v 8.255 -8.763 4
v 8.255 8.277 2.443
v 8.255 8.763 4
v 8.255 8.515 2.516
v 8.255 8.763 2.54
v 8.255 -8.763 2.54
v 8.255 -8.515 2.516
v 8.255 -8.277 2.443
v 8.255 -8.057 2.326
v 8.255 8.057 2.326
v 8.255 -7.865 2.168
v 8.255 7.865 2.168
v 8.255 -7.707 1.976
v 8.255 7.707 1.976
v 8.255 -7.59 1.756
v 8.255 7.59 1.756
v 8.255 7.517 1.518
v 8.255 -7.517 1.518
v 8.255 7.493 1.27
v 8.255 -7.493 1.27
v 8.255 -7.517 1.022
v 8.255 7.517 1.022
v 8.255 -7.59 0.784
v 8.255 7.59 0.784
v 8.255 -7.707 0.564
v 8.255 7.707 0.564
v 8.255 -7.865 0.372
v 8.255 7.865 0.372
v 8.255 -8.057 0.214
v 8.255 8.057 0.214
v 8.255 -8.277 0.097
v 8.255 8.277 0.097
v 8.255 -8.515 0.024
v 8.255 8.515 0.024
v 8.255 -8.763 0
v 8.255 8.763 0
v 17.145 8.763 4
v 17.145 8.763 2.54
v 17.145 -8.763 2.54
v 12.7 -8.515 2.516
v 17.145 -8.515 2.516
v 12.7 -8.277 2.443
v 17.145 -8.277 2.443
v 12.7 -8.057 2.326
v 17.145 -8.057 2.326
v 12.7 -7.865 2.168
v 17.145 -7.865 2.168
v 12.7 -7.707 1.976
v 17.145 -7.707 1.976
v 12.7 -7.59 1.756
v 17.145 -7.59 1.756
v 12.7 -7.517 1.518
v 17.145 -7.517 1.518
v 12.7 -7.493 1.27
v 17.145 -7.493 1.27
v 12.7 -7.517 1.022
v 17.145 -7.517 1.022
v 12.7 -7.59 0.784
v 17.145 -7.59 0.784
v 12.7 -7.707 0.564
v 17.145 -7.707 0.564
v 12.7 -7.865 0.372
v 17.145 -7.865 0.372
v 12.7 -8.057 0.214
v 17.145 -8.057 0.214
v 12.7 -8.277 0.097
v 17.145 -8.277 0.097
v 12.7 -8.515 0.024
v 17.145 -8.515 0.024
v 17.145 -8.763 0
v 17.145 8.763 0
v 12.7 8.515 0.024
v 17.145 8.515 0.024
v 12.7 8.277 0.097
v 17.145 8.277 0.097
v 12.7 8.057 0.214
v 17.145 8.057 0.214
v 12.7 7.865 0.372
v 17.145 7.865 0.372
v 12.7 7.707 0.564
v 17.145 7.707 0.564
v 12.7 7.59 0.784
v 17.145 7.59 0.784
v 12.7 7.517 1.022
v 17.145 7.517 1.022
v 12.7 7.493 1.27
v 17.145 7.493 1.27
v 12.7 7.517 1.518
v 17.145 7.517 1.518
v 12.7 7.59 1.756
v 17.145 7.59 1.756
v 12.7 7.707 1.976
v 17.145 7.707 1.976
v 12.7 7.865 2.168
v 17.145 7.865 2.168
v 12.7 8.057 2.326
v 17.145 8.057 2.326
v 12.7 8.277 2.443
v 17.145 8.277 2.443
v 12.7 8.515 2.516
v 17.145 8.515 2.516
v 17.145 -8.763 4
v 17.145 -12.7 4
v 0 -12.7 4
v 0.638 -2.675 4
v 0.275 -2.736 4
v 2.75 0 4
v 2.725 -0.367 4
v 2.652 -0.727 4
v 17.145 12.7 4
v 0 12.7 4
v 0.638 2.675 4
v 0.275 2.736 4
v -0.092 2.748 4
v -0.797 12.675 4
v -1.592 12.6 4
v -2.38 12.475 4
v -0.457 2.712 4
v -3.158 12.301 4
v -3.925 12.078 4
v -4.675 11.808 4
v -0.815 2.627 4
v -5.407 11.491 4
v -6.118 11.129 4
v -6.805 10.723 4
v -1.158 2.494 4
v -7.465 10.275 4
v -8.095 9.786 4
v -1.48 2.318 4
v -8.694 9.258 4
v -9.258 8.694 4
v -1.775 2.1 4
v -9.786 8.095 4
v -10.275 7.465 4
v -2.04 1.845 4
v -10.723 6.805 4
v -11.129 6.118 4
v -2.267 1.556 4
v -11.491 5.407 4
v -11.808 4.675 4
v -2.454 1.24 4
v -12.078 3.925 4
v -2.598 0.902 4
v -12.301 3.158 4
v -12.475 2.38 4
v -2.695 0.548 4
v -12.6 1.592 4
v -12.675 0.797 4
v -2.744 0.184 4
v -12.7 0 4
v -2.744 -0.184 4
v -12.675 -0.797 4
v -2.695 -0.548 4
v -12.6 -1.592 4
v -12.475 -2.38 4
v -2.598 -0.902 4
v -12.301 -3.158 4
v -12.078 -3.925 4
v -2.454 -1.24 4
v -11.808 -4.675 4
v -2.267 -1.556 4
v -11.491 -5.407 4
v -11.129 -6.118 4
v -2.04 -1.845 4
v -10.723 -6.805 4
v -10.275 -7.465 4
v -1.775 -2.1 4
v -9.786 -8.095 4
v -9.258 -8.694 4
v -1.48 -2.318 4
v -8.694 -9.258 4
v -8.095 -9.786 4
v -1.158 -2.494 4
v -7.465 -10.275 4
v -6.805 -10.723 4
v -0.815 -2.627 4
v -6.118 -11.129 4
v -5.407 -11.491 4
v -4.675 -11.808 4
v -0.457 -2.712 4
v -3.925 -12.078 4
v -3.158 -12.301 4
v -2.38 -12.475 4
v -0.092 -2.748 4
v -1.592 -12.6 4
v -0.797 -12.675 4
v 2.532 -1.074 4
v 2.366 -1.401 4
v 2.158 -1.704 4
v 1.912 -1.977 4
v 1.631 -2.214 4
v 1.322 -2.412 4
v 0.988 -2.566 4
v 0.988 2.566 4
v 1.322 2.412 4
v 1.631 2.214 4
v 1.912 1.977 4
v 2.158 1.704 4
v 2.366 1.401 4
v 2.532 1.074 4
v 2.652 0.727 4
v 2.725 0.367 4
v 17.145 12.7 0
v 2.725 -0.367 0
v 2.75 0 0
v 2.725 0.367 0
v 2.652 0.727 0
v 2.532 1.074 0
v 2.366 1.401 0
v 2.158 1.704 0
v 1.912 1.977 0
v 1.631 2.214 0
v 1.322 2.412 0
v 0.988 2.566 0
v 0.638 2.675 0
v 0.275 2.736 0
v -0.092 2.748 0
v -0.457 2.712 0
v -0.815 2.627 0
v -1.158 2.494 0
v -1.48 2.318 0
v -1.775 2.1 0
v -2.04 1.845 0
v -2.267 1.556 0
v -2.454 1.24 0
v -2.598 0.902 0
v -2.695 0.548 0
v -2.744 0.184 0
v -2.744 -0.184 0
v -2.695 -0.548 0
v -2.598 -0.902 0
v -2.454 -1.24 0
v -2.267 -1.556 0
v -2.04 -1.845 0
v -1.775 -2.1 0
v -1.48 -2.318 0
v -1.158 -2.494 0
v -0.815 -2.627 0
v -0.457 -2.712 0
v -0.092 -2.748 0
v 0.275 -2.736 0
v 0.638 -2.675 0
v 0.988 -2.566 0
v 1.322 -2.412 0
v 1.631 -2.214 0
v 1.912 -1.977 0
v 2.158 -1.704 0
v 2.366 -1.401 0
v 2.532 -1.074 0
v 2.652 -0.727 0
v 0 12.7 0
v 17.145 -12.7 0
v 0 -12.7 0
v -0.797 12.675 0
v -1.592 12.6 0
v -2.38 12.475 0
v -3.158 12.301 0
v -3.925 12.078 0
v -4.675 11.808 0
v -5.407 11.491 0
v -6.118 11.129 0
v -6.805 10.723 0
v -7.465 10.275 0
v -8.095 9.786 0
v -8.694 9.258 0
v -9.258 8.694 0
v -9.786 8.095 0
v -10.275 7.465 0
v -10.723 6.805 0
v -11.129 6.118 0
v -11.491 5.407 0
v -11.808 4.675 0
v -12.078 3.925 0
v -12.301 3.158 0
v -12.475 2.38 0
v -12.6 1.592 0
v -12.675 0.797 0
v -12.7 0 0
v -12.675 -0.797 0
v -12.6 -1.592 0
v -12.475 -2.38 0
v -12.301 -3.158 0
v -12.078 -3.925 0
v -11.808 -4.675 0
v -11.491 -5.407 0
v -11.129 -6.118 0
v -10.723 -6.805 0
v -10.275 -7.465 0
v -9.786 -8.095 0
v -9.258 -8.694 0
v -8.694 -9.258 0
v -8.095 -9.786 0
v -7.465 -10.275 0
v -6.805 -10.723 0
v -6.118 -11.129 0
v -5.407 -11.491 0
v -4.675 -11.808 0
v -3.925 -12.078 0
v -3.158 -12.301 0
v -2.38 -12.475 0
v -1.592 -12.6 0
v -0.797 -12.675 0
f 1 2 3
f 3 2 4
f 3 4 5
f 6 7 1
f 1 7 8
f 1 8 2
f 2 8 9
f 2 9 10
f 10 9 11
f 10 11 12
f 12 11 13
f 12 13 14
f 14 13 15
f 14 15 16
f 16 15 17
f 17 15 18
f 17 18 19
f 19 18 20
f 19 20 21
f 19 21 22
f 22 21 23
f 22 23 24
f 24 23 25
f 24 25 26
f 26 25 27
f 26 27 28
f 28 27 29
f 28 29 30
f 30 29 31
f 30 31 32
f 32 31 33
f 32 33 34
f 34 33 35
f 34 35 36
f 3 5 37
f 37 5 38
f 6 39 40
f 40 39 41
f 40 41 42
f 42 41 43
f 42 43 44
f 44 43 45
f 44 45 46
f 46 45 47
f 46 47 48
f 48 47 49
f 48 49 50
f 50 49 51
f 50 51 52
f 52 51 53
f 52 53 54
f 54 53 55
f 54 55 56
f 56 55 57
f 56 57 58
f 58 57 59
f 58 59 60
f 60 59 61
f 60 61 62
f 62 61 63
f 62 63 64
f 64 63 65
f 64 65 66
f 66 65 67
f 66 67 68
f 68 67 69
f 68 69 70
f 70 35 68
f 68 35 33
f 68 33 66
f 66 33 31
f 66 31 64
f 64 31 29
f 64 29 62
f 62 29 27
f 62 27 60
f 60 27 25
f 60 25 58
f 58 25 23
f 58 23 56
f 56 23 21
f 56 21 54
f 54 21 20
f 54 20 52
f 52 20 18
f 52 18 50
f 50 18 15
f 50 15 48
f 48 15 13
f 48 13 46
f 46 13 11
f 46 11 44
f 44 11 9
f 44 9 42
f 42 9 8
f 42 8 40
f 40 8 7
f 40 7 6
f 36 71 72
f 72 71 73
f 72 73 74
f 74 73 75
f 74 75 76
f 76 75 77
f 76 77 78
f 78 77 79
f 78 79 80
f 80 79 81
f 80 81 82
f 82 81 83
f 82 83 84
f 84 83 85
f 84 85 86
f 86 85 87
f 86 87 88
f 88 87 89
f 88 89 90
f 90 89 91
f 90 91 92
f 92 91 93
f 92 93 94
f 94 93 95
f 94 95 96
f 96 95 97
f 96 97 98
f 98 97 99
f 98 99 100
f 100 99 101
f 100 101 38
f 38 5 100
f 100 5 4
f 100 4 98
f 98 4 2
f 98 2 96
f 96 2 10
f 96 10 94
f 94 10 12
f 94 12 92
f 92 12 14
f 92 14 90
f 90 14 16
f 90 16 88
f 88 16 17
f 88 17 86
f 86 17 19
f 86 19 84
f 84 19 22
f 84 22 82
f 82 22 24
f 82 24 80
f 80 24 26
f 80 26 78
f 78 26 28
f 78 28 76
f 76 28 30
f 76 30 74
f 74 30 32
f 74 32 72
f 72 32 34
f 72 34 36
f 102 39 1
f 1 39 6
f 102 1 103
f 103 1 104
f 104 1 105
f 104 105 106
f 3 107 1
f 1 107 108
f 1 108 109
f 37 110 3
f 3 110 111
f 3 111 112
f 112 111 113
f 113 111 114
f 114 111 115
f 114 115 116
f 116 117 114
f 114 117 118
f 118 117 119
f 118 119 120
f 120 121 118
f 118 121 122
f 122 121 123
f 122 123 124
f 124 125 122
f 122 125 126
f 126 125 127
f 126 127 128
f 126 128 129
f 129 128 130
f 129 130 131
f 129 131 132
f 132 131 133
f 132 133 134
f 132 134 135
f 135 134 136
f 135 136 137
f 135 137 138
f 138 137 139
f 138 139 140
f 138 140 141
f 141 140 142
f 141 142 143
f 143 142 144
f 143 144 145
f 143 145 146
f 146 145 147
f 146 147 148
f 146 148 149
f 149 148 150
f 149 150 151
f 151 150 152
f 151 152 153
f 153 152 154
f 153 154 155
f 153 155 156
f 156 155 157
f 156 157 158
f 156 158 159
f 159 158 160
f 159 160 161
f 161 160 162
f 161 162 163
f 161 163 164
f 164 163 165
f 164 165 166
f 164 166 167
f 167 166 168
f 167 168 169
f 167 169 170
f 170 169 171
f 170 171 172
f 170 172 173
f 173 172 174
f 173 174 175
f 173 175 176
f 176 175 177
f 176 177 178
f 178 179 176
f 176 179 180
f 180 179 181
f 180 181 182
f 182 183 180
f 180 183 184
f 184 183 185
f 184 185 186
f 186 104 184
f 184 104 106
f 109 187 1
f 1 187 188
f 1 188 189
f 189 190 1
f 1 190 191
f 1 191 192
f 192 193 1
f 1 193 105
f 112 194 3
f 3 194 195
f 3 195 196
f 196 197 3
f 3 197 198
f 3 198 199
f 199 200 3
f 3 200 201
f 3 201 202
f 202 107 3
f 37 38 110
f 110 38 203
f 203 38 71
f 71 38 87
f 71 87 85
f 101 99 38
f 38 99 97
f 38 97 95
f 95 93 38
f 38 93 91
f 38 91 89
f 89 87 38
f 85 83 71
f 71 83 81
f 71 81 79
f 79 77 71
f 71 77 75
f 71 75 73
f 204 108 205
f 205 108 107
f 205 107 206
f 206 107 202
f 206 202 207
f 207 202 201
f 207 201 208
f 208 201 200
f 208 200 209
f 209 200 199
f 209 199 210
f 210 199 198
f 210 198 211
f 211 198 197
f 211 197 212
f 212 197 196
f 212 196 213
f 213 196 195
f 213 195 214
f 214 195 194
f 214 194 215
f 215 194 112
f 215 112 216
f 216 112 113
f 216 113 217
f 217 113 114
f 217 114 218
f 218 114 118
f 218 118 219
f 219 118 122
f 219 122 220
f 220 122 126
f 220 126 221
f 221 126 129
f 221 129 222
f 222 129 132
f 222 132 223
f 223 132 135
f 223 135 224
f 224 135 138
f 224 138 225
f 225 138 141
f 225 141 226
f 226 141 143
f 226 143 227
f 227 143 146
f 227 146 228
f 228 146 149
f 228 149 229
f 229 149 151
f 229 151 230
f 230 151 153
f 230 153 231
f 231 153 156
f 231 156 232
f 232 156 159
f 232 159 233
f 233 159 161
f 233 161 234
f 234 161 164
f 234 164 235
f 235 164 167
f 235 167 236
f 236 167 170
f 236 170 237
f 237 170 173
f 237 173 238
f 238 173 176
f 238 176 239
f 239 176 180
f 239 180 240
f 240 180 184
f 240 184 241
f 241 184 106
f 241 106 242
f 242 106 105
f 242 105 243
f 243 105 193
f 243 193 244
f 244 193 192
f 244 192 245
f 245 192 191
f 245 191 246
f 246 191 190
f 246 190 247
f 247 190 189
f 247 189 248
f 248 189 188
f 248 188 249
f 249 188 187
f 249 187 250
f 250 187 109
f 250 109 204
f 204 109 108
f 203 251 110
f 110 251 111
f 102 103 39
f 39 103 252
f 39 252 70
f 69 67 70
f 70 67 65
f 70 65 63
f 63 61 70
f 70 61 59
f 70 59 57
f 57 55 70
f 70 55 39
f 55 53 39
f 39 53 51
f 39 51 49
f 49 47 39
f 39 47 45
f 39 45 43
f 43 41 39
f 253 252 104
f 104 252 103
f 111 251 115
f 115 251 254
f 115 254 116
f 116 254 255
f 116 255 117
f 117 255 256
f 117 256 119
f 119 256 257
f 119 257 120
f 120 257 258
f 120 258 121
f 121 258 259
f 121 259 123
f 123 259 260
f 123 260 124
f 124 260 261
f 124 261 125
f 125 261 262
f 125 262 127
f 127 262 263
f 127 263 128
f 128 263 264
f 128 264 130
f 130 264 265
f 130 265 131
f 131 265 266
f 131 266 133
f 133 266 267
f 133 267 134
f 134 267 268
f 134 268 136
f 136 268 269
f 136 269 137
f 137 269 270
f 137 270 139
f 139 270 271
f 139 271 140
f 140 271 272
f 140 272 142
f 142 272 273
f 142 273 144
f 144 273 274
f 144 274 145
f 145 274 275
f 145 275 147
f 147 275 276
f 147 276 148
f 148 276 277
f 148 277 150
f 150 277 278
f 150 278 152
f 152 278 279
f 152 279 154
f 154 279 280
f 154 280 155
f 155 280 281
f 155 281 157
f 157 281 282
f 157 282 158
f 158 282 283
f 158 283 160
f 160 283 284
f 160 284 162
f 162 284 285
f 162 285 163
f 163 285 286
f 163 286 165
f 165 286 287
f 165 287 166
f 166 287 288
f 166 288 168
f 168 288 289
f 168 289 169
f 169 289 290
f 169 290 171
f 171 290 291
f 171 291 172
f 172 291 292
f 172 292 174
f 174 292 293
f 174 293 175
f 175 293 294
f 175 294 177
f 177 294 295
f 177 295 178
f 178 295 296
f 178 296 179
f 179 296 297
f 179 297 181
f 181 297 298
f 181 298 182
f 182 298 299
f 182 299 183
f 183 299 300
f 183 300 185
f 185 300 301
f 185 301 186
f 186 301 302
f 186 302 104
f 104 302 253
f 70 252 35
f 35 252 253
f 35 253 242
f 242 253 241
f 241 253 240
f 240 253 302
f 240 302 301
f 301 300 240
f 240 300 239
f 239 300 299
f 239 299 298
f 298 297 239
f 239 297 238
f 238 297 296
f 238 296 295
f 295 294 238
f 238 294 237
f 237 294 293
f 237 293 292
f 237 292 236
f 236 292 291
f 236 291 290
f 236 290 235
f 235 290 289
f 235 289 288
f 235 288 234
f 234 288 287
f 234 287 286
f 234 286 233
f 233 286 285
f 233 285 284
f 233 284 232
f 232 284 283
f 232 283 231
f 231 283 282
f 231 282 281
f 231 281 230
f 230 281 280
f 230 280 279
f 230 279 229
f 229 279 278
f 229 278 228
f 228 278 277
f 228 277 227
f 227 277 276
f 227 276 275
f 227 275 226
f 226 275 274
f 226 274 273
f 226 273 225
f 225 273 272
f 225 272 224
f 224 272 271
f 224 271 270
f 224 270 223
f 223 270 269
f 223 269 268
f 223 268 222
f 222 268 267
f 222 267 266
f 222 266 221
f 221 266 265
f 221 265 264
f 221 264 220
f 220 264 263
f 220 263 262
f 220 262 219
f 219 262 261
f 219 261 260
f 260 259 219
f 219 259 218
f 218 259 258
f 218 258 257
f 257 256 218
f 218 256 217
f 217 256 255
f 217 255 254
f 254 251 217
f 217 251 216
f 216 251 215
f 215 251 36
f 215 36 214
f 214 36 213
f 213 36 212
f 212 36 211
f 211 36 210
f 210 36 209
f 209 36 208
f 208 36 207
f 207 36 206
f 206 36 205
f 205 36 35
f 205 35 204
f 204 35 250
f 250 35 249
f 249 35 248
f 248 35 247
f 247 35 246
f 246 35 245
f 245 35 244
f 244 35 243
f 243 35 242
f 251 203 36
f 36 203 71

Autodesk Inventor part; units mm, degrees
ref_plane "YZ Plane" through (0, 0, 0) normal (1, 0, 0) x (0, 1, 0)
ref_plane "XZ Plane" through (0, 0, 0) normal (0, 1, 0) x (-1, 0, 0)
ref_plane "XY Plane" through (0, 0, 0) normal (0, 0, 1) x (1, 0, 0)
sketch "Sketch1" plane through (0, 0, 0) normal (0, 0, 1) x (1, 0, 0)
  arc A0 (0, 12.7) -> (0, -12.7) centre (0, 0) ccw
  line L0 (0, 12.7) -> (17.145, 12.7)
  line L1 (17.145, 12.7) -> (17.145, -12.7)
  line L2 (17.145, -12.7) -> (0, -12.7)
  line L3 (0, -12.7) -> (0, 12.7)
  dimension "d0" = 25.4
  dimension "d7" = 17.145
extrude "Extrusion1" add sketch "Sketch1" along normal blind 4
sketch "Sketch2" plane through (0, 0, 4) normal (0, 0, 1) x (1, 0, 0)
  circle A0 centre (0, 0) radius 2.75
  dimension "d4" = 5.5
extrude "Extrusion2" cut sketch "Sketch2" against normal through all
sketch "Sketch3" plane through (17.145, -12.7, 0) normal (1, 0, 0) x (0, 0, -1)
  line L0 (-9.3431, 3.937) -> (-2.54, 3.937)
  line L1 (4.3638, 3.937) -> (4.3638, 21.463)
  line L2 (4.3638, 21.463) -> (0, 21.463)
  line L3 (-9.3431, 21.463) -> (-9.3431, 3.937)
  arc A0 (-2.54, 3.937) -> (0, 3.937) centre (-1.27, 3.937) ccw
  arc A1 (0, 21.463) -> (-2.54, 21.463) centre (-1.27, 21.463) ccw
  line L4 (0, 0) -> (0, 25.4) projected
  line L5 (-2.54, 3.937) -> (0, 3.937)
  line L6 (0, 3.937) -> (4.3638, 3.937)
  line L7 (0, 21.463) -> (-9.3431, 21.463)
  arc A2 (0, 3.937) -> (-2.54, 3.937) centre (-1.27, 3.937) ccw
  arc A3 (-2.54, 21.463) -> (0, 21.463) centre (-1.27, 21.463) ccw
  point P0 (0, 12.7)
  point P1 (4.3638, 12.7)
  point P2 (0, 12.7)
  dimension "d8" = 2.54
  dimension "d9" = 17.526
extrude "Extrusion3" cut sketch "Sketch3" against normal blind 8.89 contours L3 L7 A3 L4 A2 L0 | L4 L2 L1 L6
properties part number "fakebattergasket1"
